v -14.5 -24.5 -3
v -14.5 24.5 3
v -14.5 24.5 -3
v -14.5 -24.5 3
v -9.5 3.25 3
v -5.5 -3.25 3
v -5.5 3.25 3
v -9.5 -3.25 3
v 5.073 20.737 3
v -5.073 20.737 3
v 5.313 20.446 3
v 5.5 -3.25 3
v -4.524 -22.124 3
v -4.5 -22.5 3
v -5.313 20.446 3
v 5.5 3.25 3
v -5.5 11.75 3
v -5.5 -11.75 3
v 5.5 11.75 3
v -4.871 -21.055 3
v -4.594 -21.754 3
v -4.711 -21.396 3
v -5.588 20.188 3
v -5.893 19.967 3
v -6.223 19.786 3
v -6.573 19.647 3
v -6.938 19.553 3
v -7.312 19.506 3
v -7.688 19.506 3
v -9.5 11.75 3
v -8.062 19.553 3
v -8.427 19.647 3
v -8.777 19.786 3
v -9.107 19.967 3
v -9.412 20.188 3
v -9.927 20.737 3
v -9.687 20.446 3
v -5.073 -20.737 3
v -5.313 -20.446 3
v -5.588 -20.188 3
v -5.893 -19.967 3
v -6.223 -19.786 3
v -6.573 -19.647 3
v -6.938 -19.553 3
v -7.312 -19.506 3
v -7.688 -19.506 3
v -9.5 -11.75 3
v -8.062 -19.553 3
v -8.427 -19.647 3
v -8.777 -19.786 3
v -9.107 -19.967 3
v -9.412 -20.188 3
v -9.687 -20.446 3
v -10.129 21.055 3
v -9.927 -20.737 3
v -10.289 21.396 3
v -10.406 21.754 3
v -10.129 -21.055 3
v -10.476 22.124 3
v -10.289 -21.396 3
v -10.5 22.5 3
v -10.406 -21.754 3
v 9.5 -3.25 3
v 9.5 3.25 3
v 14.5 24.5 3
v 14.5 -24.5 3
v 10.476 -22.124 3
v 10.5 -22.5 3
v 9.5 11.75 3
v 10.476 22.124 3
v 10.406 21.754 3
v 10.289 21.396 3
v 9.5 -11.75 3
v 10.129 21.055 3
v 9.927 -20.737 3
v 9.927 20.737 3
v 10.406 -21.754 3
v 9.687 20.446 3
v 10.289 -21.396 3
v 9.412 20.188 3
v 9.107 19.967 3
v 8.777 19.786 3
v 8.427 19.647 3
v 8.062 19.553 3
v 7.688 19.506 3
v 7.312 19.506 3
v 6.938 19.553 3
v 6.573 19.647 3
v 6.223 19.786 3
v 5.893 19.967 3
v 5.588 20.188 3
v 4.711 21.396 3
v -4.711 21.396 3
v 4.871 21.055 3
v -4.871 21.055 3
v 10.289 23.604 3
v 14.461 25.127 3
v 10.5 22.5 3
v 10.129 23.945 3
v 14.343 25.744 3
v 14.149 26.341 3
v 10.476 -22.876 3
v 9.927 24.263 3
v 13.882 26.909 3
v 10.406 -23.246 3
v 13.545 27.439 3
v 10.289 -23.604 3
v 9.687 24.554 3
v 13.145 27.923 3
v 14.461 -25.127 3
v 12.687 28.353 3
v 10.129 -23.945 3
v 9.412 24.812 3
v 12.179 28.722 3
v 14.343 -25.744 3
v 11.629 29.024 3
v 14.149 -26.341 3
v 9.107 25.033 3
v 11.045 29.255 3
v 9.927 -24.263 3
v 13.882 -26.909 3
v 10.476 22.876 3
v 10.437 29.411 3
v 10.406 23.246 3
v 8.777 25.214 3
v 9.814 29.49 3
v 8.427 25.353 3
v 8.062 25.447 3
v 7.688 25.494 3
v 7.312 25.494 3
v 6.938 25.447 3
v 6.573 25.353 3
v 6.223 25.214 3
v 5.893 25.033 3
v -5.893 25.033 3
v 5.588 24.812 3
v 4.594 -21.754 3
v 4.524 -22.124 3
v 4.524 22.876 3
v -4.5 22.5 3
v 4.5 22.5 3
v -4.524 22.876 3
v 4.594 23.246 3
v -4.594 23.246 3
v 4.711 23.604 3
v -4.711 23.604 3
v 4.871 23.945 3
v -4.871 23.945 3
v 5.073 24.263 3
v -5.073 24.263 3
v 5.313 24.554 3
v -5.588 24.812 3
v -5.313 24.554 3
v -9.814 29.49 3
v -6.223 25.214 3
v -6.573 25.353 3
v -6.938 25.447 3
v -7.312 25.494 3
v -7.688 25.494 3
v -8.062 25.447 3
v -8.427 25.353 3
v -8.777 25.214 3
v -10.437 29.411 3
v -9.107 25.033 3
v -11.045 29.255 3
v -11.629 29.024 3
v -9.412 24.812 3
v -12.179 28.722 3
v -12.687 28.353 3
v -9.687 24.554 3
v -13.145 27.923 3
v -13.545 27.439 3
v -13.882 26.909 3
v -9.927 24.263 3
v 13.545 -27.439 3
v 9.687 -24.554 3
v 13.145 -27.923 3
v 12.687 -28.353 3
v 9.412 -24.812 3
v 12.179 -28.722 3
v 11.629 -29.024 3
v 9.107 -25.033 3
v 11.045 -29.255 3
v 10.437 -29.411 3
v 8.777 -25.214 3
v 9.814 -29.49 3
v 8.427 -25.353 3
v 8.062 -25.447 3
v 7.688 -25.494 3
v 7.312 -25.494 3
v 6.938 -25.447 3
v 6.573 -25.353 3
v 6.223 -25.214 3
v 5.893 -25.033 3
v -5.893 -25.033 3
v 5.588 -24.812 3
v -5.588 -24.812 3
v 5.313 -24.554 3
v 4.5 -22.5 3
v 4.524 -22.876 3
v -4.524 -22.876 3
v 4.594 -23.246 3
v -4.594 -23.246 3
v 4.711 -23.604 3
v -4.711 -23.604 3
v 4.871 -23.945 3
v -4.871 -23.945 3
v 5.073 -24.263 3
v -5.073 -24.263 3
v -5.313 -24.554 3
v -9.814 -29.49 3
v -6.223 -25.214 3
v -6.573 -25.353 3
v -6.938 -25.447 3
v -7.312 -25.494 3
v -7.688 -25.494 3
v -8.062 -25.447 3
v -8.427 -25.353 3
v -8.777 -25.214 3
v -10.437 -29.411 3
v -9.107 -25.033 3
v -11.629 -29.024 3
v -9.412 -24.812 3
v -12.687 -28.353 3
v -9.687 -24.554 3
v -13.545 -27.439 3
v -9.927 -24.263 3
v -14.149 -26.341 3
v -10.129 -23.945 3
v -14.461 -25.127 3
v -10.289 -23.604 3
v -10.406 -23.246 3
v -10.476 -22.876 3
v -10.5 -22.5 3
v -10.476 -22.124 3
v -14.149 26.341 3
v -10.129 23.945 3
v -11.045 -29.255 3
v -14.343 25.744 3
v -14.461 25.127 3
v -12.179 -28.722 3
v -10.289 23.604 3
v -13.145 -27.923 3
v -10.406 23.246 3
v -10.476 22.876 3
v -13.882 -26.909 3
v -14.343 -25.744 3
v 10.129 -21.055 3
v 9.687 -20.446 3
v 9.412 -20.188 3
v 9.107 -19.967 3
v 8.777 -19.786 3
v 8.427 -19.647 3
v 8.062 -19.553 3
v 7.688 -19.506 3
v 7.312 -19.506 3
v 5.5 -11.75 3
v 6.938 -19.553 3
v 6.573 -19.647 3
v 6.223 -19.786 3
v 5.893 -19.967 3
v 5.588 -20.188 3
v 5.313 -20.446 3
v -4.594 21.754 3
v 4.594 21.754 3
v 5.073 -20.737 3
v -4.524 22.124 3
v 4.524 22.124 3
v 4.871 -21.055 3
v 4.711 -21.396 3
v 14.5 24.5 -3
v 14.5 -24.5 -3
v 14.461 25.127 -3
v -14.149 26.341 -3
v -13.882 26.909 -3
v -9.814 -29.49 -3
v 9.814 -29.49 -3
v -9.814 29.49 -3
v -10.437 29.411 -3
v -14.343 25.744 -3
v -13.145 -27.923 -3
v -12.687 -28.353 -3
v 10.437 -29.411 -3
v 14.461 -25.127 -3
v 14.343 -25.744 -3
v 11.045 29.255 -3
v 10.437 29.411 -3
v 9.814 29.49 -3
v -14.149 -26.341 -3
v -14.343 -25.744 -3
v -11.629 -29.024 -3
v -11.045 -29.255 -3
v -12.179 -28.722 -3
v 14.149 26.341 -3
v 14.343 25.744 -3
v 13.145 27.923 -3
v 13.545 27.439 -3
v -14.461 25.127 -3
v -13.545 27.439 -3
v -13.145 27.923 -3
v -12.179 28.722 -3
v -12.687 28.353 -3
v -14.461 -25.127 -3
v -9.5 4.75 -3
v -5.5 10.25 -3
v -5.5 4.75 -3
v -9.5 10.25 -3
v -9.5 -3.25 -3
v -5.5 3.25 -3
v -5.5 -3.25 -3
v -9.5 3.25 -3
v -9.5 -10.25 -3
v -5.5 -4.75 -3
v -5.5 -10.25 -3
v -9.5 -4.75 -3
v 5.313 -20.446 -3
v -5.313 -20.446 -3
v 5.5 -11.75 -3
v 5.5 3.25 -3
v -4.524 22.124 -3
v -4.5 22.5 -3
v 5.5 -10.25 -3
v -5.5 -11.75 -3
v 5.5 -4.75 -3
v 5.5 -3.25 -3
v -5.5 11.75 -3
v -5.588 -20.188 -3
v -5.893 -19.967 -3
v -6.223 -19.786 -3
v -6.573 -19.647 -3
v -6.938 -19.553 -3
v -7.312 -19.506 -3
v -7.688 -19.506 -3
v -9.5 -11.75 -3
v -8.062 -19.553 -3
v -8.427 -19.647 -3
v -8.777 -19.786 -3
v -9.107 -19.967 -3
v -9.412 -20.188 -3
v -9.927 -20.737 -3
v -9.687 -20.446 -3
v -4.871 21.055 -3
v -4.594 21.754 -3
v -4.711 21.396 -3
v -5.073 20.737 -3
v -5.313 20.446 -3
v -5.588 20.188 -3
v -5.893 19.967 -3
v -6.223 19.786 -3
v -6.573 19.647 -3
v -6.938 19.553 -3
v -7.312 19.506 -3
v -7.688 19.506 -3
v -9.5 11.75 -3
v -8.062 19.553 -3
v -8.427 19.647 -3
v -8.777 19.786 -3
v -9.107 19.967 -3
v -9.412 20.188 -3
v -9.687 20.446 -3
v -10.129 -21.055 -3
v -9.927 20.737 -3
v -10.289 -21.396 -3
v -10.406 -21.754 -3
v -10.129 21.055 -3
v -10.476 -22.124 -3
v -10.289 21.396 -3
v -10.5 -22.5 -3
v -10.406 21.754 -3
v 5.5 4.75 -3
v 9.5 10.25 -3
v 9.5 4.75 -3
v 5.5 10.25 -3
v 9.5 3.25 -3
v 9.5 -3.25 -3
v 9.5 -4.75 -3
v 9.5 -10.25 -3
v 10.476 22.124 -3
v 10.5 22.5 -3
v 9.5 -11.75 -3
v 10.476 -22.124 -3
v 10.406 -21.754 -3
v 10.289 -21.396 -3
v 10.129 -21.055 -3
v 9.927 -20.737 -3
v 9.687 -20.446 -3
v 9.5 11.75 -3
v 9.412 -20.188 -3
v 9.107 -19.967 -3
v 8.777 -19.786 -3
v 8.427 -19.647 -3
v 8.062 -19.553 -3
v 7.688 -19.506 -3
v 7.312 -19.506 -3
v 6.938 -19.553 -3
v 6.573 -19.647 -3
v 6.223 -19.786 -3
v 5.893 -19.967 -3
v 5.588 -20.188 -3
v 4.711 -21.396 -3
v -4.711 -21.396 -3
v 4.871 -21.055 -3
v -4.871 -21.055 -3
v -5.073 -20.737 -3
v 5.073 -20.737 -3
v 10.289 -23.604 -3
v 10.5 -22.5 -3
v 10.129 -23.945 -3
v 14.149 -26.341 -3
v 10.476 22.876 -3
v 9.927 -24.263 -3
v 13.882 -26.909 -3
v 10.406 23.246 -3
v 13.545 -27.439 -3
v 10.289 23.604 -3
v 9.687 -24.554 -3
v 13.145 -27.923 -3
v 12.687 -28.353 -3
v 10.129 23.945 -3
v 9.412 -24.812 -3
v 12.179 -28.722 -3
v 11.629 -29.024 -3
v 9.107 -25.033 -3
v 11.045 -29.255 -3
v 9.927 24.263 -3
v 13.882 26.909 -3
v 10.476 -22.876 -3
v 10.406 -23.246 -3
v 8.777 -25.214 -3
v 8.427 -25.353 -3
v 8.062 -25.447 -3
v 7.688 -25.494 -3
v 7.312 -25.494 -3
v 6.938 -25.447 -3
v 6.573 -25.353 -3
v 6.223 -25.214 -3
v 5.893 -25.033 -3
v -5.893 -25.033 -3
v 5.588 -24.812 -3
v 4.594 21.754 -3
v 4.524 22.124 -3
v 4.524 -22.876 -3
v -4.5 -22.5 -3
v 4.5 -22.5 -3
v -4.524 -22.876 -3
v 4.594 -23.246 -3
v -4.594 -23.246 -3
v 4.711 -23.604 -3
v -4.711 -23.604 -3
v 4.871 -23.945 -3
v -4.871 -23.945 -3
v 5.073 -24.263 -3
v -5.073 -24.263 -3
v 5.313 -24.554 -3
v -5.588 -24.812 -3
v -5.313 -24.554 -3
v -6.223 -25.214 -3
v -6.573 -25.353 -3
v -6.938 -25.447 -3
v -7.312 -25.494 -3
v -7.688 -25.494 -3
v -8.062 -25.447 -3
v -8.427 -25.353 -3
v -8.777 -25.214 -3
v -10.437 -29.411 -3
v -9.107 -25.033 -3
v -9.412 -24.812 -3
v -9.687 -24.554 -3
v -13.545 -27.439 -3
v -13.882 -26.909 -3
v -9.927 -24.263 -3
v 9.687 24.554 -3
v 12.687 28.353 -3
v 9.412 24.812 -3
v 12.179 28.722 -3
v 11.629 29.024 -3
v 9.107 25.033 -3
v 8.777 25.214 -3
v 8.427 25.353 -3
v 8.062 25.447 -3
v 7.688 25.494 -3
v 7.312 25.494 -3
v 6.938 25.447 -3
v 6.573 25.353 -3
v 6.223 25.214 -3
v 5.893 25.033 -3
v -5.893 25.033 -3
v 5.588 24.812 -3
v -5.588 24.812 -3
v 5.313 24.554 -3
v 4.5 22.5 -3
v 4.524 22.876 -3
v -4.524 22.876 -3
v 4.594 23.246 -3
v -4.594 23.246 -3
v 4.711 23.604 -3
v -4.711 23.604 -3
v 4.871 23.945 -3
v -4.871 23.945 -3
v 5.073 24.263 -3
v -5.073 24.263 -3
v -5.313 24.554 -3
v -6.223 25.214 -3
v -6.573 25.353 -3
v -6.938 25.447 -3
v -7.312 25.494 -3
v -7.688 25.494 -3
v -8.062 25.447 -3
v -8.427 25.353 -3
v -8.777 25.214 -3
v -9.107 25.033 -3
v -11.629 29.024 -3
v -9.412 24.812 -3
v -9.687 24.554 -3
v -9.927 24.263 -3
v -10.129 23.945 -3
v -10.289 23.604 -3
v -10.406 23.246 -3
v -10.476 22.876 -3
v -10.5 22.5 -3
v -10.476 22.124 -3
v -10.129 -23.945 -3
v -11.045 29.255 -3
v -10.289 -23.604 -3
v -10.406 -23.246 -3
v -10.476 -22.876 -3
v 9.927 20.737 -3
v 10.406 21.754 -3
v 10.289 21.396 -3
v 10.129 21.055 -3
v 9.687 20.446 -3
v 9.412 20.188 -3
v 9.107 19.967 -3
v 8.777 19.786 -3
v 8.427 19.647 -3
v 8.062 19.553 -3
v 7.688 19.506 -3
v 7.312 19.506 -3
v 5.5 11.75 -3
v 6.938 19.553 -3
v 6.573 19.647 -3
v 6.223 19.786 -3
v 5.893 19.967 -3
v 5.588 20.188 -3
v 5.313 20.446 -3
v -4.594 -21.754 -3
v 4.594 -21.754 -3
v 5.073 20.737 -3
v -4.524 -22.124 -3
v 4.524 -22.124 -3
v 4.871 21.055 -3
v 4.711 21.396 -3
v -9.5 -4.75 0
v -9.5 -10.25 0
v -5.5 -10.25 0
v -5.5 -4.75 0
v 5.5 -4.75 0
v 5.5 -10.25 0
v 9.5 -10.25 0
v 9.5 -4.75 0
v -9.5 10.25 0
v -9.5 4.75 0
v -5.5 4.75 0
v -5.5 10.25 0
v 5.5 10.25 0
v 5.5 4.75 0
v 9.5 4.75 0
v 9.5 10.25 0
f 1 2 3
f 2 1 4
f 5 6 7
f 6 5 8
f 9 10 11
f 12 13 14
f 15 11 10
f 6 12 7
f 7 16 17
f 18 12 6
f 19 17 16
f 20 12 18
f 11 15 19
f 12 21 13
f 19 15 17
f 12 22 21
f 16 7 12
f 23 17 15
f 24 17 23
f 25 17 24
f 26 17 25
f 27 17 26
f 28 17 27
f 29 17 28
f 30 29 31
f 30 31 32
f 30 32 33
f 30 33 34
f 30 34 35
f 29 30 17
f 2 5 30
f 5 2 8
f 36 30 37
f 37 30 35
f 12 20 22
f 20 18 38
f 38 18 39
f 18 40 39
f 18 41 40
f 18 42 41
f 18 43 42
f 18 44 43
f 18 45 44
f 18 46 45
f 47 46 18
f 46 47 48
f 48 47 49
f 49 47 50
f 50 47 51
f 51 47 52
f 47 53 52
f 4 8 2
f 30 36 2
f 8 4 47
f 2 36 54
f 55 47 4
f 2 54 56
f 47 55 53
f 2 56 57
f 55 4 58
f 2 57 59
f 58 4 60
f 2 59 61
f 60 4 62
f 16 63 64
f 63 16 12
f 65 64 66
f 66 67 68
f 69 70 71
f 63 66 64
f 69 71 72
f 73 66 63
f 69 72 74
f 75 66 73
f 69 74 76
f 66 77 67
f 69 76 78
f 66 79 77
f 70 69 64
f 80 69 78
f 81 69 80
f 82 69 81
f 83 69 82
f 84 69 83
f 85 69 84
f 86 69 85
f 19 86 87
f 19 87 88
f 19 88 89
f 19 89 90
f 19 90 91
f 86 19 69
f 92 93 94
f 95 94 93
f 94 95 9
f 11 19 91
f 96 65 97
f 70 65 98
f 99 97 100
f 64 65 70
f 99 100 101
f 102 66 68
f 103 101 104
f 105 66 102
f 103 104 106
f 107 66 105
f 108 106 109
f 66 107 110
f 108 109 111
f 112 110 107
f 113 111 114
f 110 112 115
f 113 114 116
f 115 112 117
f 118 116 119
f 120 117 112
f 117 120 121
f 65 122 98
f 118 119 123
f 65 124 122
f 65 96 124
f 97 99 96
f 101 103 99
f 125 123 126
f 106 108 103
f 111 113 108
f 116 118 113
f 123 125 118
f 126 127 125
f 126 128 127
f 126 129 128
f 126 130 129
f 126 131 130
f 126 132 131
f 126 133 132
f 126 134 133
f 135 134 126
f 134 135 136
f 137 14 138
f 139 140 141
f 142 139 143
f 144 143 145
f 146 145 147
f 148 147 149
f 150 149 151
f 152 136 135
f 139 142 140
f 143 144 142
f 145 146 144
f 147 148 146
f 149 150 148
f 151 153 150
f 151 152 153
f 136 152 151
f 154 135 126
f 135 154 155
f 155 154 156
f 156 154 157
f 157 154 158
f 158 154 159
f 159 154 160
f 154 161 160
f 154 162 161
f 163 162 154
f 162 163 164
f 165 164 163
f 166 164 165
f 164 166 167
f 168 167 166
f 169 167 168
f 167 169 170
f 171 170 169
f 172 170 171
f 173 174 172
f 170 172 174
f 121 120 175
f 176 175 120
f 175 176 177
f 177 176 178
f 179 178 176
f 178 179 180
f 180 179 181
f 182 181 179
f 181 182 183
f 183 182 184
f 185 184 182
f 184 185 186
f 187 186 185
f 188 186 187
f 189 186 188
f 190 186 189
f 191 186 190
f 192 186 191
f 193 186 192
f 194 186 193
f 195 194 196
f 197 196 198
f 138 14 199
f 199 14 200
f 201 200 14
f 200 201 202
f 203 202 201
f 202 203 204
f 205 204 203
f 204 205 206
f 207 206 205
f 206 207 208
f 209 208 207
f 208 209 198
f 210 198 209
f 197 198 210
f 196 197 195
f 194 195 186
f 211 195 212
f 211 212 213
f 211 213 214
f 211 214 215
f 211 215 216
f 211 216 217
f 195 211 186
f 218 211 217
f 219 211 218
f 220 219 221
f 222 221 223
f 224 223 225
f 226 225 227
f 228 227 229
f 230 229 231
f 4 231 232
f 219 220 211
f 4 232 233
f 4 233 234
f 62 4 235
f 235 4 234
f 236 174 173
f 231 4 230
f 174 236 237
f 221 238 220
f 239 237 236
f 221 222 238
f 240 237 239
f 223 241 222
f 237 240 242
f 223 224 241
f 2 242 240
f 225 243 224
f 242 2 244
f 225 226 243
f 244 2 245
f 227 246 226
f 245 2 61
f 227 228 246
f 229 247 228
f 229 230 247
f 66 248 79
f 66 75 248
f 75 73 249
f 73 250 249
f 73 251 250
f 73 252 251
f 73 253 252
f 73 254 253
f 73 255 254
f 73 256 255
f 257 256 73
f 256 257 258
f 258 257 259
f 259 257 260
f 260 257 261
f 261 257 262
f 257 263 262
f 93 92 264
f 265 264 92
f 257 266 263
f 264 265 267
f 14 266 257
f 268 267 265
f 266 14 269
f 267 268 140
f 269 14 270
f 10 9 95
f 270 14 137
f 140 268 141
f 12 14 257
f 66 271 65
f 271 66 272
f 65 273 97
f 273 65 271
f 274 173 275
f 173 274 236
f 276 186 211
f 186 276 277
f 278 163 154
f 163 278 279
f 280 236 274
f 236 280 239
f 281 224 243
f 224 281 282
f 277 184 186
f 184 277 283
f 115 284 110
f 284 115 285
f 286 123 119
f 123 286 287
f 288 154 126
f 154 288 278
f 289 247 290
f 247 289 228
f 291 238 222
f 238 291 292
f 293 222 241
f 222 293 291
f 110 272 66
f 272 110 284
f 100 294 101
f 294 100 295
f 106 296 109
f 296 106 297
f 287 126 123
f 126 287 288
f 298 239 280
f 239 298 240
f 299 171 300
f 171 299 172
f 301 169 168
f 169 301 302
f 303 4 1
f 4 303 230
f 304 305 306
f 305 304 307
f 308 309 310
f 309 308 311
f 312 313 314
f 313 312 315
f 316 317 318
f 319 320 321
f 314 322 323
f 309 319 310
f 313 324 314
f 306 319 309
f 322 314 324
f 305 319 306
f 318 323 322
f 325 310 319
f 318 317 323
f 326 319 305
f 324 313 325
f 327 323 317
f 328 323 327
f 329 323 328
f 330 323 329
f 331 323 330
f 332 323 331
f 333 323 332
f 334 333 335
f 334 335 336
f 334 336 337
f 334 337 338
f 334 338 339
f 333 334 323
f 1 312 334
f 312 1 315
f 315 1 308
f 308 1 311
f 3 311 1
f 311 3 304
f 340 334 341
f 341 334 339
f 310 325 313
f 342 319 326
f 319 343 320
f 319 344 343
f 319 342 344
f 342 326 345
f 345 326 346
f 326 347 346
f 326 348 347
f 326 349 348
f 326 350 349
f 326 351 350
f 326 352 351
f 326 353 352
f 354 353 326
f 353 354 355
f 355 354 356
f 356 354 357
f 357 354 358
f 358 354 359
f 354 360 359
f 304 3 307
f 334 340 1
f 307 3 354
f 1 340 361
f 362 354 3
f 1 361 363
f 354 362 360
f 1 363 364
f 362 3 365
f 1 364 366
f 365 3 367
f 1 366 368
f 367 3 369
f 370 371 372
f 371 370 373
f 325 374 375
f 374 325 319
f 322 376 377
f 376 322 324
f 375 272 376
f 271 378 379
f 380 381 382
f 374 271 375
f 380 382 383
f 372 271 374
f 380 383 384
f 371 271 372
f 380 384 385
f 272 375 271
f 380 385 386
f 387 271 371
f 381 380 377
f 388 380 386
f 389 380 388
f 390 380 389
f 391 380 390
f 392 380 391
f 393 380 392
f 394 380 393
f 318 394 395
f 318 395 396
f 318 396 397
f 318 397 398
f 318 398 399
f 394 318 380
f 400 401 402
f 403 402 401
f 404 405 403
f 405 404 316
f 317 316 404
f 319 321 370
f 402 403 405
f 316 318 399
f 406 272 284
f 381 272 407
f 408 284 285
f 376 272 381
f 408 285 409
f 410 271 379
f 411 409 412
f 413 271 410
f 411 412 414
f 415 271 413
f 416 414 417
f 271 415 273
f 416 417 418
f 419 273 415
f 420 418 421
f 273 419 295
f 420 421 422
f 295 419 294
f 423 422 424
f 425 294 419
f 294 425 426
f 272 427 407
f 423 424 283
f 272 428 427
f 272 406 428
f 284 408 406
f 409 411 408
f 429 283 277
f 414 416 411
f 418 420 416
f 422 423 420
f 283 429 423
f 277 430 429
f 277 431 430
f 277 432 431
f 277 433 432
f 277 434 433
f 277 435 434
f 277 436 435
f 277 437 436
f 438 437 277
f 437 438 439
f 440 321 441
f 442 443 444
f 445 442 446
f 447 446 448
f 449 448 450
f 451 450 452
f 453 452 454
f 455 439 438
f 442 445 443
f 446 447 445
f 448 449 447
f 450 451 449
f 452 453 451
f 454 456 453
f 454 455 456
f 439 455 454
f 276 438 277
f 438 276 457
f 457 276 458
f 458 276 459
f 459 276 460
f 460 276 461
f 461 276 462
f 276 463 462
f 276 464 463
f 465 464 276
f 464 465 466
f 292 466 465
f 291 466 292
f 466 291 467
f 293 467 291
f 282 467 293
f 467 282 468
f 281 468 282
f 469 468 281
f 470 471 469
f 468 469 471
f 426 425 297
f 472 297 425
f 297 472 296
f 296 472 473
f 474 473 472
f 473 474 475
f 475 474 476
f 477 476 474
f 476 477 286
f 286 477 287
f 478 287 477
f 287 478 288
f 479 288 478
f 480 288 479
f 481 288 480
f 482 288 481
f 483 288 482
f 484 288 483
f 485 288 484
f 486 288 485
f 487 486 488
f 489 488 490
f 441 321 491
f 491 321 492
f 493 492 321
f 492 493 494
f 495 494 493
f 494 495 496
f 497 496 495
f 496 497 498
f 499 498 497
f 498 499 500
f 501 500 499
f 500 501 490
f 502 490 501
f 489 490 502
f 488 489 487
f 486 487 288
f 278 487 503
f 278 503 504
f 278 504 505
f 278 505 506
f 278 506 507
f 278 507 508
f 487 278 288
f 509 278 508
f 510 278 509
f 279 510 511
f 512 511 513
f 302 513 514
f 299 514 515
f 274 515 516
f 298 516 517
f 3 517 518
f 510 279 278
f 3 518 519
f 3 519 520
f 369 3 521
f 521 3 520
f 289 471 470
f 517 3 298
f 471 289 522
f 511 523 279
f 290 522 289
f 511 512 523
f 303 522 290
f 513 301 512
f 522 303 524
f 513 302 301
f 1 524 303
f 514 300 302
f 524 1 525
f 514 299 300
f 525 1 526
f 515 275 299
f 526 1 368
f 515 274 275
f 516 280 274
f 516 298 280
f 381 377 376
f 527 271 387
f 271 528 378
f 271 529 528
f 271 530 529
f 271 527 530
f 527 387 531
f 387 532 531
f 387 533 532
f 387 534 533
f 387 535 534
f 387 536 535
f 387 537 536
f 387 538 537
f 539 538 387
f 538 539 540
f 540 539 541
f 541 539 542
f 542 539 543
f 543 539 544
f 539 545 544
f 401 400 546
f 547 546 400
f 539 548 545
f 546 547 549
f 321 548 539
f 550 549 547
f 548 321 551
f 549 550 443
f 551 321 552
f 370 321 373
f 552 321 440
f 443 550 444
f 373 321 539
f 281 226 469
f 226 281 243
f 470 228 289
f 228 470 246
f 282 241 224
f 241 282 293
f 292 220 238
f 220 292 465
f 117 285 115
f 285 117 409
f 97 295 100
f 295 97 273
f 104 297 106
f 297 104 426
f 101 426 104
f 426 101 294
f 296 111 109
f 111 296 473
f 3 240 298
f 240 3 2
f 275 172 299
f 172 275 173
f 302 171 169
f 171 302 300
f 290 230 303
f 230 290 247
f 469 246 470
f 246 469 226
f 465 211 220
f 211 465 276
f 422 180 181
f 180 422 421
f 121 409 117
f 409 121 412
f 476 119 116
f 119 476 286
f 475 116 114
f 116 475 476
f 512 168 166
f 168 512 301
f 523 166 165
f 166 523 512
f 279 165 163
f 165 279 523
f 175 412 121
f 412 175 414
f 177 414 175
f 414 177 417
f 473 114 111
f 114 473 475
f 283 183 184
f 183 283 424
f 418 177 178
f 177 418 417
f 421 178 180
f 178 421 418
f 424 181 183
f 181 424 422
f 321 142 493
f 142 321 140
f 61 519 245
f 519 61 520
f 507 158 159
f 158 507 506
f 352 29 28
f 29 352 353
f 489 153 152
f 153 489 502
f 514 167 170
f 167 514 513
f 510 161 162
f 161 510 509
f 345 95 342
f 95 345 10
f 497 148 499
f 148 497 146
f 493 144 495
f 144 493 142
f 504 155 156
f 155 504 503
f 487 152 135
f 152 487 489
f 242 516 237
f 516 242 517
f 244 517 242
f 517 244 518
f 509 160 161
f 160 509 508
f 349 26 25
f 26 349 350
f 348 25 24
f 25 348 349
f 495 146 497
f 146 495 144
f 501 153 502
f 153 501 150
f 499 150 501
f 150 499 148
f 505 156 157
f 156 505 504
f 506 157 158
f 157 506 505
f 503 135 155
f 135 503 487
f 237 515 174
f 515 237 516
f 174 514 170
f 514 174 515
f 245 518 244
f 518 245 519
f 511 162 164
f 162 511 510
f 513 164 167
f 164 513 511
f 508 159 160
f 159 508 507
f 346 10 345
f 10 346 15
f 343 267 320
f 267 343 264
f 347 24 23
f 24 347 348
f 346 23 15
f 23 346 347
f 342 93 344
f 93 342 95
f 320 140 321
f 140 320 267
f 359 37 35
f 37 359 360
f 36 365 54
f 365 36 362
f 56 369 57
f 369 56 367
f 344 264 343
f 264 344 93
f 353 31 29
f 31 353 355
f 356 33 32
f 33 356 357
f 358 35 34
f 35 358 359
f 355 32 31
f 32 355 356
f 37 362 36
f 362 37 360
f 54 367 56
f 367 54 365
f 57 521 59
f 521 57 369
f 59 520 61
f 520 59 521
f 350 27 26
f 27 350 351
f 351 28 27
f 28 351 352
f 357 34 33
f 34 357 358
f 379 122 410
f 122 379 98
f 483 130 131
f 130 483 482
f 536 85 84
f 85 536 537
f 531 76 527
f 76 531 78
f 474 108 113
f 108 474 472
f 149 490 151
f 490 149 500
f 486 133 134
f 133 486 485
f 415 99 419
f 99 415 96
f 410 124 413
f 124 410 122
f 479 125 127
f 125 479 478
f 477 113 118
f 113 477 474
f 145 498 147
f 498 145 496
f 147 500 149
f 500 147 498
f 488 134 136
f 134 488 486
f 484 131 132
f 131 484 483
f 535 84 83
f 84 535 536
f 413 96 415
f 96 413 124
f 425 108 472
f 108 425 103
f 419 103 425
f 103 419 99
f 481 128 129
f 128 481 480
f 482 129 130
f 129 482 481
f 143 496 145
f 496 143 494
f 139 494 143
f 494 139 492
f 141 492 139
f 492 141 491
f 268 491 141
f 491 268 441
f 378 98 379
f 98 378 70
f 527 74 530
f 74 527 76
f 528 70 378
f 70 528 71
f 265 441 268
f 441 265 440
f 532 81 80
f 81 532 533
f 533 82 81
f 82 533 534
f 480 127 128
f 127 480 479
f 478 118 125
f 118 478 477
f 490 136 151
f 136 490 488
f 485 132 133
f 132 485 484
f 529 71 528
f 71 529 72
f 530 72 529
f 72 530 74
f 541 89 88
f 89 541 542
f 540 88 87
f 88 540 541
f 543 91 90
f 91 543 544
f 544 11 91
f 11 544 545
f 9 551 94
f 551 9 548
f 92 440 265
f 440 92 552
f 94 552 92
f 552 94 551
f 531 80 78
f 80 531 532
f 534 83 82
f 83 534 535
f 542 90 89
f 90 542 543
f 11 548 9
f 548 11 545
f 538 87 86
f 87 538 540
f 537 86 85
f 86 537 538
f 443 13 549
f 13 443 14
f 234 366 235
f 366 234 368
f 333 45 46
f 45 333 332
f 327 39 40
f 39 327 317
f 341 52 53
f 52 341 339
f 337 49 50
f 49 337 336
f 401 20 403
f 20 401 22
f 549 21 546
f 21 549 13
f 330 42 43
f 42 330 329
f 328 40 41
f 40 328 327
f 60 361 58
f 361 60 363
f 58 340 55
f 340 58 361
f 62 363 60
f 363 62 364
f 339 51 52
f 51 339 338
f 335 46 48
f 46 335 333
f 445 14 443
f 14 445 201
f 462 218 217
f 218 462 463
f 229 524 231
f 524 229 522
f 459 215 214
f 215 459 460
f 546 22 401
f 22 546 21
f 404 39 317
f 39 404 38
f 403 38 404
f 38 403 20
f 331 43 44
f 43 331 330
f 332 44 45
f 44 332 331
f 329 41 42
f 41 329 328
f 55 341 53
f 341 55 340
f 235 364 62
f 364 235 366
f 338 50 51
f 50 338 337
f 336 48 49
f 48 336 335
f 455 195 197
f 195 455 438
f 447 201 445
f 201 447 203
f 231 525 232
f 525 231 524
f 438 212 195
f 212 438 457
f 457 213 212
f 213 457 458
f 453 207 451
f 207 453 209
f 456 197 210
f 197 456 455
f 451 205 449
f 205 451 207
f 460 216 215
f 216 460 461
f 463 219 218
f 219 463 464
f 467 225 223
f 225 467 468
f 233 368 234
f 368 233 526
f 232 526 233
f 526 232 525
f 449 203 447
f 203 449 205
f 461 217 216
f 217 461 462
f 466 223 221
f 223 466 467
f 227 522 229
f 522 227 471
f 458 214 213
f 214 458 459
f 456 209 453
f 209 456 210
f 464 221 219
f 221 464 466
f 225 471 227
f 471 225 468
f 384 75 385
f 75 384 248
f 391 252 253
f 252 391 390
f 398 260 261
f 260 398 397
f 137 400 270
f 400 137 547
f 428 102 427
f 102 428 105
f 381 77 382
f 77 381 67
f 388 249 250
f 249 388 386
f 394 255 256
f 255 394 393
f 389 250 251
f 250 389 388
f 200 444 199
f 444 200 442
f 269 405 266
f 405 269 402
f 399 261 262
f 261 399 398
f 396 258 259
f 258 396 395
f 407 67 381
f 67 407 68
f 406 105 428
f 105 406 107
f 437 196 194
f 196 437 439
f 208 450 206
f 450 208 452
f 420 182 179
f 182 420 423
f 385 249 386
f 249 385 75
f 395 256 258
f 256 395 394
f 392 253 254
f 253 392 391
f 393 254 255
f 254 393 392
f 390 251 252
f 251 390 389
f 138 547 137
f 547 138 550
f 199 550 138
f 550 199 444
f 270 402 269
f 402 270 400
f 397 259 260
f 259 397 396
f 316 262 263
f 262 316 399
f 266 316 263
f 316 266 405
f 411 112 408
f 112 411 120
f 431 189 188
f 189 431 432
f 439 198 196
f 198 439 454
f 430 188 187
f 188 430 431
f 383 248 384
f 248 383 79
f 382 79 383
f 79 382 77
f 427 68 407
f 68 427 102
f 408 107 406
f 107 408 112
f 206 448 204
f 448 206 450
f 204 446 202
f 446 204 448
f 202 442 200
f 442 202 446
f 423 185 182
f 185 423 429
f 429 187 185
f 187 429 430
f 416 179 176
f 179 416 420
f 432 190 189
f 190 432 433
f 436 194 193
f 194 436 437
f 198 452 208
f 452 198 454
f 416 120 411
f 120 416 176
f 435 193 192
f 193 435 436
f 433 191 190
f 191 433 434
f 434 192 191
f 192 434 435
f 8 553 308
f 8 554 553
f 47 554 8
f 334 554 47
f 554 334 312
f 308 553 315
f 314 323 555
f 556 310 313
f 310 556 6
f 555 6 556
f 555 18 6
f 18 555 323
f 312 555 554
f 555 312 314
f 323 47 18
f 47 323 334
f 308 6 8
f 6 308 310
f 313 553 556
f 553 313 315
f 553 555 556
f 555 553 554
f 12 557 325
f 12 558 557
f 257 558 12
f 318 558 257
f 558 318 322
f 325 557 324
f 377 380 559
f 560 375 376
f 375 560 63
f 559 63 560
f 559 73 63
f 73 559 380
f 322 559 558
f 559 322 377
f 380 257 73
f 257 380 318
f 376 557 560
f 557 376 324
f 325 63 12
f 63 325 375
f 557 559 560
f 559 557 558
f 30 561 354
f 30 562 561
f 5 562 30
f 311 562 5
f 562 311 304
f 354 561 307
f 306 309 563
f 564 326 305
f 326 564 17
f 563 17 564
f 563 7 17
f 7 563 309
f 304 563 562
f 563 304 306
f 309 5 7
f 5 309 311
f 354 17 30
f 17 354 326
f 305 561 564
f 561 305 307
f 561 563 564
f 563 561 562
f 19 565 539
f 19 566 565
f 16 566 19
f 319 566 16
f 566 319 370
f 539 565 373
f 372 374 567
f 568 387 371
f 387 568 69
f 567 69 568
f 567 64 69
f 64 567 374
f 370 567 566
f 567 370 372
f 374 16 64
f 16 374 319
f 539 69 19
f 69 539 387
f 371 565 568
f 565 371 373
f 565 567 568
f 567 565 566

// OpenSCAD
$fn = 50;


difference() {
	union() {
		translate(v = [0, 0, -3.0000000000]) {
			hull() {
				translate(v = [-9.5000000000, 24.5000000000, 0]) {
					cylinder(h = 6, r = 5);
				}
				translate(v = [9.5000000000, 24.5000000000, 0]) {
					cylinder(h = 6, r = 5);
				}
				translate(v = [-9.5000000000, -24.5000000000, 0]) {
					cylinder(h = 6, r = 5);
				}
				translate(v = [9.5000000000, -24.5000000000, 0]) {
					cylinder(h = 6, r = 5);
				}
			}
		}
		translate(v = [0, 0, -3.0000000000]) {
			hull() {
				translate(v = [-9.5000000000, 24.5000000000, 0]) {
					cylinder(h = 6, r = 5);
				}
				translate(v = [9.5000000000, 24.5000000000, 0]) {
					cylinder(h = 6, r = 5);
				}
				translate(v = [-9.5000000000, -24.5000000000, 0]) {
					cylinder(h = 6, r = 5);
				}
				translate(v = [9.5000000000, -24.5000000000, 0]) {
					cylinder(h = 6, r = 5);
				}
			}
		}
	}
	union() {
		translate(v = [-7.5000000000, 22.5000000000, -100.0000000000]) {
			cylinder(h = 200, r = 3.0000000000);
		}
		translate(v = [7.5000000000, 22.5000000000, -100.0000000000]) {
			cylinder(h = 200, r = 3.0000000000);
		}
		translate(v = [-7.5000000000, -22.5000000000, -100.0000000000]) {
			cylinder(h = 200, r = 3.0000000000);
		}
		translate(v = [7.5000000000, -22.5000000000, -100.0000000000]) {
			cylinder(h = 200, r = 3.0000000000);
		}
		translate(v = [-9.5000000000, -11.7500000000, -50]) {
			cube(size = [4, 1.5000000000, 100]);
		}
		translate(v = [-9.5000000000, -4.7500000000, -50]) {
			cube(size = [4, 1.5000000000, 100]);
		}
		translate(v = [-9.5000000000, -11.7500000000, 0]) {
			cube(size = [4, 8.5000000000, 3]);
		}
		translate(v = [5.5000000000, -11.7500000000, -50]) {
			cube(size = [4, 1.5000000000, 100]);
		}
		translate(v = [5.5000000000, -4.7500000000, -50]) {
			cube(size = [4, 1.5000000000, 100]);
		}
		translate(v = [5.5000000000, -11.7500000000, 0]) {
			cube(size = [4, 8.5000000000, 3]);
		}
		translate(v = [-9.5000000000, 3.2500000000, -50]) {
			cube(size = [4, 1.5000000000, 100]);
		}
		translate(v = [-9.5000000000, 10.2500000000, -50]) {
			cube(size = [4, 1.5000000000, 100]);
		}
		translate(v = [-9.5000000000, 3.2500000000, 0]) {
			cube(size = [4, 8.5000000000, 3]);
		}
		translate(v = [5.5000000000, 3.2500000000, -50]) {
			cube(size = [4, 1.5000000000, 100]);
		}
		translate(v = [5.5000000000, 10.2500000000, -50]) {
			cube(size = [4, 1.5000000000, 100]);
		}
		translate(v = [5.5000000000, 3.2500000000, 0]) {
			cube(size = [4, 8.5000000000, 3]);
		}
	}
}
